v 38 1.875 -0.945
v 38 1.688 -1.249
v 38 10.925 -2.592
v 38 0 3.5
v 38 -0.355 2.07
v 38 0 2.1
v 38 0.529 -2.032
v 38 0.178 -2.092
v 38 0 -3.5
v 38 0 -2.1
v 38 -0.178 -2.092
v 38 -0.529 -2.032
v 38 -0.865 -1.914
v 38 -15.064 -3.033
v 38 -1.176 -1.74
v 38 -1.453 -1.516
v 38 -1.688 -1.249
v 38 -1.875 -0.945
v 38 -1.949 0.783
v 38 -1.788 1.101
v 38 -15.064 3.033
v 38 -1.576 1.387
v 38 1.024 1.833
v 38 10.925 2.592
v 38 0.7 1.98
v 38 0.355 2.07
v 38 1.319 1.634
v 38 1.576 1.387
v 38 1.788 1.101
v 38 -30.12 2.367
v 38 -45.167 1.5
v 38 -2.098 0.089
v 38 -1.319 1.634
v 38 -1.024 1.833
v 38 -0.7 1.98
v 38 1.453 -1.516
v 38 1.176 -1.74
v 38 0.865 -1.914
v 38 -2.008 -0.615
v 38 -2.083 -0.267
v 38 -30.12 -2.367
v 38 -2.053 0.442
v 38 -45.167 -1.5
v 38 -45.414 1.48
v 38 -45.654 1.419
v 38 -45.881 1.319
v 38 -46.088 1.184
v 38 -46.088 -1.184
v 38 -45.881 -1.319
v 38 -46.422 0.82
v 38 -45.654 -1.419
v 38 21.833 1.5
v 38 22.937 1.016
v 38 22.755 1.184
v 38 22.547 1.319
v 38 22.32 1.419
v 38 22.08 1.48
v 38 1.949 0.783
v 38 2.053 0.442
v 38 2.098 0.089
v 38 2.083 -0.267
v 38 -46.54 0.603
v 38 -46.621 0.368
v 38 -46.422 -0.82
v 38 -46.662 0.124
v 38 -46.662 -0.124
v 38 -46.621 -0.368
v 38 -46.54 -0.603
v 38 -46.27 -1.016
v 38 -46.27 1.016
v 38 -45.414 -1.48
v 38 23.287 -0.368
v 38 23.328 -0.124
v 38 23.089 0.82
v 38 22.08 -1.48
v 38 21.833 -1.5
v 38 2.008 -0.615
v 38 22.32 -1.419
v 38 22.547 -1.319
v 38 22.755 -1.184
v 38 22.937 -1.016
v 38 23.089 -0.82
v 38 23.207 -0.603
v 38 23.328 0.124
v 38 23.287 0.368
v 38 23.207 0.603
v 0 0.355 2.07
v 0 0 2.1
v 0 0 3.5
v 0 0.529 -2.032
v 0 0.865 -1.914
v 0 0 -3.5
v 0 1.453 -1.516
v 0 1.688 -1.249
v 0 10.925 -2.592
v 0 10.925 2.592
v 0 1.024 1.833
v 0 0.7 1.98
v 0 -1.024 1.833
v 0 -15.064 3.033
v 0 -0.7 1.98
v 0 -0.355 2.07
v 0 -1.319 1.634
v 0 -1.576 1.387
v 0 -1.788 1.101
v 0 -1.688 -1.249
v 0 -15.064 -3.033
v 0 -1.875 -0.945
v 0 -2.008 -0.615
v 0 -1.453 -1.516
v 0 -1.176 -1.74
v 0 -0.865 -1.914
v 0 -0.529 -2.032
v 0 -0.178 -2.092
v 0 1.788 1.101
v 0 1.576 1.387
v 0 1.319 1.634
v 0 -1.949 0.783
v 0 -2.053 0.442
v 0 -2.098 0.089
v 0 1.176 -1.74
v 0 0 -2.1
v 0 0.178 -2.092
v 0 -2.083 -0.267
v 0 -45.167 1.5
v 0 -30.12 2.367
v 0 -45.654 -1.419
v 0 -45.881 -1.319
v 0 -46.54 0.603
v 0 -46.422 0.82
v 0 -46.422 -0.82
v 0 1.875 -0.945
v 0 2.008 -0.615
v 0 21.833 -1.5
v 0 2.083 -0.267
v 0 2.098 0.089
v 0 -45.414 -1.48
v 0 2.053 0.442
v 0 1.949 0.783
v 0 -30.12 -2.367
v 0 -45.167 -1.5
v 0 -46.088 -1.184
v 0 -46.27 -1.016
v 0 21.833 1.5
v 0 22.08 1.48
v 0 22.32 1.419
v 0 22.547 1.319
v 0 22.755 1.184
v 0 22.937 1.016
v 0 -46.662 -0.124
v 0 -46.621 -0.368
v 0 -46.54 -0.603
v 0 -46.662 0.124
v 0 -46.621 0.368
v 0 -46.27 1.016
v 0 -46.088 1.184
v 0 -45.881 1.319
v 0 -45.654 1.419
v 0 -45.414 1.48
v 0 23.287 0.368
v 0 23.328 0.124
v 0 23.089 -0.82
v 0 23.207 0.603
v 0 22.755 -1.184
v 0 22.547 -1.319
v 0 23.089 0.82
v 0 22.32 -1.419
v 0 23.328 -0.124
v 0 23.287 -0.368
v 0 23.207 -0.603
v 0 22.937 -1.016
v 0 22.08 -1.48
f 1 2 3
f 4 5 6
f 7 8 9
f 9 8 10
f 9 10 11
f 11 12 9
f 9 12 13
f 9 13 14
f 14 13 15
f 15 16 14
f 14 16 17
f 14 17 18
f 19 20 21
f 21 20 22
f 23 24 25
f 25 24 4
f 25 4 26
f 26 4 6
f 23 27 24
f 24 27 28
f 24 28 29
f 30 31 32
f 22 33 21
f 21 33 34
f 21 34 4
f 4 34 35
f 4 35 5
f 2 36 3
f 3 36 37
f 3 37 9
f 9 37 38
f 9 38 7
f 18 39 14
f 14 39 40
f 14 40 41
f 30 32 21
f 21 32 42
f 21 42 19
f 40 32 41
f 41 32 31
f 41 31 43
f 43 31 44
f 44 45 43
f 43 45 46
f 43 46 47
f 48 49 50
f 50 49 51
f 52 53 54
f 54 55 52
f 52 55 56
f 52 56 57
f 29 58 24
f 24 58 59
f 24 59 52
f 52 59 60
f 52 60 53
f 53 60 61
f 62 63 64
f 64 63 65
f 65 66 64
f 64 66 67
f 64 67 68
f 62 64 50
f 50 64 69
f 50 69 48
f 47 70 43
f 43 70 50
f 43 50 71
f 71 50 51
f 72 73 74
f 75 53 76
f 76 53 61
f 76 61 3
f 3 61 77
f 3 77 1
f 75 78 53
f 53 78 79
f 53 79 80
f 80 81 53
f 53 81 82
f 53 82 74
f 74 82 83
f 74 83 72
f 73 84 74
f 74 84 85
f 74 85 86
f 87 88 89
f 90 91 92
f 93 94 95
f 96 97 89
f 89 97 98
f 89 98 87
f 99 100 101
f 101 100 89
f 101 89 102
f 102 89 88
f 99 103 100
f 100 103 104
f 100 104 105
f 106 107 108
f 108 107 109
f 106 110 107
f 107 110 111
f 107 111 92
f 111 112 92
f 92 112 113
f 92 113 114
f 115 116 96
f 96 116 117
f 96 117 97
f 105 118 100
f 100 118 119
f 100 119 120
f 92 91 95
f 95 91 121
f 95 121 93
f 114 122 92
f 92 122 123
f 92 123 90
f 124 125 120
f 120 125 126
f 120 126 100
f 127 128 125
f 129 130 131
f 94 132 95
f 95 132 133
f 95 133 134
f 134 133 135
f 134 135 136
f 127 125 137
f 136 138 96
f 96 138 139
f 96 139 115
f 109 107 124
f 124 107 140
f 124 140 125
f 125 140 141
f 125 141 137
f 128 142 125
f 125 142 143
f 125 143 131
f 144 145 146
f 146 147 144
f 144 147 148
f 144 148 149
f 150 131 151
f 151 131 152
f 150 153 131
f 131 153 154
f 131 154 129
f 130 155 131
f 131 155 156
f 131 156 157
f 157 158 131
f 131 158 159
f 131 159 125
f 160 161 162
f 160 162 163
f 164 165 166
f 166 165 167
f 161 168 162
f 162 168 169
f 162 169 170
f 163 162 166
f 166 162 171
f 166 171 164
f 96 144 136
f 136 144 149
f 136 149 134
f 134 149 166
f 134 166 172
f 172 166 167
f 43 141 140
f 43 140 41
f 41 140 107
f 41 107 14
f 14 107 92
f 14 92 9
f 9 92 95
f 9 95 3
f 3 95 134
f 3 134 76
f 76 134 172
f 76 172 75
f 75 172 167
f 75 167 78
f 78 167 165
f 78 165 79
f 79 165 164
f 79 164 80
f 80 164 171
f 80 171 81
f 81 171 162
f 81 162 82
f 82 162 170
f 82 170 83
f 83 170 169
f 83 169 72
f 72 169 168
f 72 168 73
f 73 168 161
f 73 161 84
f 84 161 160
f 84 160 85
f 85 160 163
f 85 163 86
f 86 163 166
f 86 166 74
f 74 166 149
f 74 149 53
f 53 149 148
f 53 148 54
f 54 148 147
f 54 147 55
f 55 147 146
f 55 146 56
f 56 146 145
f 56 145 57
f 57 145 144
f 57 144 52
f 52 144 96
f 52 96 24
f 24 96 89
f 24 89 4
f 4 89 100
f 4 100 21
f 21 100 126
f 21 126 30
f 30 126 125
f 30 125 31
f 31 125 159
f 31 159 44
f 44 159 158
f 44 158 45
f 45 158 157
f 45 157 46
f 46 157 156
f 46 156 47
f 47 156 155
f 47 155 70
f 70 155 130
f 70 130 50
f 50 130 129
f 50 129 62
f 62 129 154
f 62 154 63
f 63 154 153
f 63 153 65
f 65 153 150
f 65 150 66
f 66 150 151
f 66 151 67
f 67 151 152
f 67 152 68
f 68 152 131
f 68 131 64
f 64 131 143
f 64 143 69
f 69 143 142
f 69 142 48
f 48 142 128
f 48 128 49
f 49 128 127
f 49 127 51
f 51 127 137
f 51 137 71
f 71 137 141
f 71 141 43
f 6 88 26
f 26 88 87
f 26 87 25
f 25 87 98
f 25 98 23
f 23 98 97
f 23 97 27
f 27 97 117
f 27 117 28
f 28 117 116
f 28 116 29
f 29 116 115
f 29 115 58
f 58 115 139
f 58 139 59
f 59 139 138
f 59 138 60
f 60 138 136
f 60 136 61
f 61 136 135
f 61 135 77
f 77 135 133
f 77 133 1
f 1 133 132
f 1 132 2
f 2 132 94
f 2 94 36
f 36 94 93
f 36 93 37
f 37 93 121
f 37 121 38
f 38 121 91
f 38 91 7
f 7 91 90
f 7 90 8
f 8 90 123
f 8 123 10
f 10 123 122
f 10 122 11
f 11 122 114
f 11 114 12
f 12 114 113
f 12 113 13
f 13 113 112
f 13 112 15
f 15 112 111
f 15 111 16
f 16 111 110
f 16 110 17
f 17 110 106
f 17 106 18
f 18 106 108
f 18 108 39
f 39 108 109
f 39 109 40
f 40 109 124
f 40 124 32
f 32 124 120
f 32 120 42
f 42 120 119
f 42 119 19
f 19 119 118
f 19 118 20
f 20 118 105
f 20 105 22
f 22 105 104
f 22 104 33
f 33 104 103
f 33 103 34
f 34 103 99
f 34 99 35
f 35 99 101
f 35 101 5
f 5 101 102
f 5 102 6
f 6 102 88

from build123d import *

# Parameters (mm, degrees)
SKETCH1_R           = 2.1
BOSS_EXTRUDE1_DEPTH = 38


with BuildPart() as part:
    # Sketch1 → Boss-Extrude1 (new body)
    with BuildSketch(Plane.YZ):
        with BuildLine():
            ThreePointArc((-45.166666667, 1.5), (-46.666666667, 0), (-45.166666667, -1.5))
            ThreePointArc((-45.166666667, -1.5), (-22.593289689, -2.724847701), (0, -3.5))
            ThreePointArc((0, -3.5), (10.925062805, -2.59165784), (21.833333333, -1.5))
            ThreePointArc((21.833333333, -1.5), (23.333333333, 0), (21.833333333, 1.5))
            ThreePointArc((21.833333333, 1.5), (10.925062805, 2.59165784), (0, 3.5))
            ThreePointArc((0, 3.5), (-22.593289689, 2.724847701), (-45.166666667, 1.5))
        make_face()
        with Locations(Location((0, 0, 0), (0, 0, 270))):
            Circle(SKETCH1_R, mode=Mode.SUBTRACT)
    extrude(amount=BOSS_EXTRUDE1_DEPTH)


solid = part.part
